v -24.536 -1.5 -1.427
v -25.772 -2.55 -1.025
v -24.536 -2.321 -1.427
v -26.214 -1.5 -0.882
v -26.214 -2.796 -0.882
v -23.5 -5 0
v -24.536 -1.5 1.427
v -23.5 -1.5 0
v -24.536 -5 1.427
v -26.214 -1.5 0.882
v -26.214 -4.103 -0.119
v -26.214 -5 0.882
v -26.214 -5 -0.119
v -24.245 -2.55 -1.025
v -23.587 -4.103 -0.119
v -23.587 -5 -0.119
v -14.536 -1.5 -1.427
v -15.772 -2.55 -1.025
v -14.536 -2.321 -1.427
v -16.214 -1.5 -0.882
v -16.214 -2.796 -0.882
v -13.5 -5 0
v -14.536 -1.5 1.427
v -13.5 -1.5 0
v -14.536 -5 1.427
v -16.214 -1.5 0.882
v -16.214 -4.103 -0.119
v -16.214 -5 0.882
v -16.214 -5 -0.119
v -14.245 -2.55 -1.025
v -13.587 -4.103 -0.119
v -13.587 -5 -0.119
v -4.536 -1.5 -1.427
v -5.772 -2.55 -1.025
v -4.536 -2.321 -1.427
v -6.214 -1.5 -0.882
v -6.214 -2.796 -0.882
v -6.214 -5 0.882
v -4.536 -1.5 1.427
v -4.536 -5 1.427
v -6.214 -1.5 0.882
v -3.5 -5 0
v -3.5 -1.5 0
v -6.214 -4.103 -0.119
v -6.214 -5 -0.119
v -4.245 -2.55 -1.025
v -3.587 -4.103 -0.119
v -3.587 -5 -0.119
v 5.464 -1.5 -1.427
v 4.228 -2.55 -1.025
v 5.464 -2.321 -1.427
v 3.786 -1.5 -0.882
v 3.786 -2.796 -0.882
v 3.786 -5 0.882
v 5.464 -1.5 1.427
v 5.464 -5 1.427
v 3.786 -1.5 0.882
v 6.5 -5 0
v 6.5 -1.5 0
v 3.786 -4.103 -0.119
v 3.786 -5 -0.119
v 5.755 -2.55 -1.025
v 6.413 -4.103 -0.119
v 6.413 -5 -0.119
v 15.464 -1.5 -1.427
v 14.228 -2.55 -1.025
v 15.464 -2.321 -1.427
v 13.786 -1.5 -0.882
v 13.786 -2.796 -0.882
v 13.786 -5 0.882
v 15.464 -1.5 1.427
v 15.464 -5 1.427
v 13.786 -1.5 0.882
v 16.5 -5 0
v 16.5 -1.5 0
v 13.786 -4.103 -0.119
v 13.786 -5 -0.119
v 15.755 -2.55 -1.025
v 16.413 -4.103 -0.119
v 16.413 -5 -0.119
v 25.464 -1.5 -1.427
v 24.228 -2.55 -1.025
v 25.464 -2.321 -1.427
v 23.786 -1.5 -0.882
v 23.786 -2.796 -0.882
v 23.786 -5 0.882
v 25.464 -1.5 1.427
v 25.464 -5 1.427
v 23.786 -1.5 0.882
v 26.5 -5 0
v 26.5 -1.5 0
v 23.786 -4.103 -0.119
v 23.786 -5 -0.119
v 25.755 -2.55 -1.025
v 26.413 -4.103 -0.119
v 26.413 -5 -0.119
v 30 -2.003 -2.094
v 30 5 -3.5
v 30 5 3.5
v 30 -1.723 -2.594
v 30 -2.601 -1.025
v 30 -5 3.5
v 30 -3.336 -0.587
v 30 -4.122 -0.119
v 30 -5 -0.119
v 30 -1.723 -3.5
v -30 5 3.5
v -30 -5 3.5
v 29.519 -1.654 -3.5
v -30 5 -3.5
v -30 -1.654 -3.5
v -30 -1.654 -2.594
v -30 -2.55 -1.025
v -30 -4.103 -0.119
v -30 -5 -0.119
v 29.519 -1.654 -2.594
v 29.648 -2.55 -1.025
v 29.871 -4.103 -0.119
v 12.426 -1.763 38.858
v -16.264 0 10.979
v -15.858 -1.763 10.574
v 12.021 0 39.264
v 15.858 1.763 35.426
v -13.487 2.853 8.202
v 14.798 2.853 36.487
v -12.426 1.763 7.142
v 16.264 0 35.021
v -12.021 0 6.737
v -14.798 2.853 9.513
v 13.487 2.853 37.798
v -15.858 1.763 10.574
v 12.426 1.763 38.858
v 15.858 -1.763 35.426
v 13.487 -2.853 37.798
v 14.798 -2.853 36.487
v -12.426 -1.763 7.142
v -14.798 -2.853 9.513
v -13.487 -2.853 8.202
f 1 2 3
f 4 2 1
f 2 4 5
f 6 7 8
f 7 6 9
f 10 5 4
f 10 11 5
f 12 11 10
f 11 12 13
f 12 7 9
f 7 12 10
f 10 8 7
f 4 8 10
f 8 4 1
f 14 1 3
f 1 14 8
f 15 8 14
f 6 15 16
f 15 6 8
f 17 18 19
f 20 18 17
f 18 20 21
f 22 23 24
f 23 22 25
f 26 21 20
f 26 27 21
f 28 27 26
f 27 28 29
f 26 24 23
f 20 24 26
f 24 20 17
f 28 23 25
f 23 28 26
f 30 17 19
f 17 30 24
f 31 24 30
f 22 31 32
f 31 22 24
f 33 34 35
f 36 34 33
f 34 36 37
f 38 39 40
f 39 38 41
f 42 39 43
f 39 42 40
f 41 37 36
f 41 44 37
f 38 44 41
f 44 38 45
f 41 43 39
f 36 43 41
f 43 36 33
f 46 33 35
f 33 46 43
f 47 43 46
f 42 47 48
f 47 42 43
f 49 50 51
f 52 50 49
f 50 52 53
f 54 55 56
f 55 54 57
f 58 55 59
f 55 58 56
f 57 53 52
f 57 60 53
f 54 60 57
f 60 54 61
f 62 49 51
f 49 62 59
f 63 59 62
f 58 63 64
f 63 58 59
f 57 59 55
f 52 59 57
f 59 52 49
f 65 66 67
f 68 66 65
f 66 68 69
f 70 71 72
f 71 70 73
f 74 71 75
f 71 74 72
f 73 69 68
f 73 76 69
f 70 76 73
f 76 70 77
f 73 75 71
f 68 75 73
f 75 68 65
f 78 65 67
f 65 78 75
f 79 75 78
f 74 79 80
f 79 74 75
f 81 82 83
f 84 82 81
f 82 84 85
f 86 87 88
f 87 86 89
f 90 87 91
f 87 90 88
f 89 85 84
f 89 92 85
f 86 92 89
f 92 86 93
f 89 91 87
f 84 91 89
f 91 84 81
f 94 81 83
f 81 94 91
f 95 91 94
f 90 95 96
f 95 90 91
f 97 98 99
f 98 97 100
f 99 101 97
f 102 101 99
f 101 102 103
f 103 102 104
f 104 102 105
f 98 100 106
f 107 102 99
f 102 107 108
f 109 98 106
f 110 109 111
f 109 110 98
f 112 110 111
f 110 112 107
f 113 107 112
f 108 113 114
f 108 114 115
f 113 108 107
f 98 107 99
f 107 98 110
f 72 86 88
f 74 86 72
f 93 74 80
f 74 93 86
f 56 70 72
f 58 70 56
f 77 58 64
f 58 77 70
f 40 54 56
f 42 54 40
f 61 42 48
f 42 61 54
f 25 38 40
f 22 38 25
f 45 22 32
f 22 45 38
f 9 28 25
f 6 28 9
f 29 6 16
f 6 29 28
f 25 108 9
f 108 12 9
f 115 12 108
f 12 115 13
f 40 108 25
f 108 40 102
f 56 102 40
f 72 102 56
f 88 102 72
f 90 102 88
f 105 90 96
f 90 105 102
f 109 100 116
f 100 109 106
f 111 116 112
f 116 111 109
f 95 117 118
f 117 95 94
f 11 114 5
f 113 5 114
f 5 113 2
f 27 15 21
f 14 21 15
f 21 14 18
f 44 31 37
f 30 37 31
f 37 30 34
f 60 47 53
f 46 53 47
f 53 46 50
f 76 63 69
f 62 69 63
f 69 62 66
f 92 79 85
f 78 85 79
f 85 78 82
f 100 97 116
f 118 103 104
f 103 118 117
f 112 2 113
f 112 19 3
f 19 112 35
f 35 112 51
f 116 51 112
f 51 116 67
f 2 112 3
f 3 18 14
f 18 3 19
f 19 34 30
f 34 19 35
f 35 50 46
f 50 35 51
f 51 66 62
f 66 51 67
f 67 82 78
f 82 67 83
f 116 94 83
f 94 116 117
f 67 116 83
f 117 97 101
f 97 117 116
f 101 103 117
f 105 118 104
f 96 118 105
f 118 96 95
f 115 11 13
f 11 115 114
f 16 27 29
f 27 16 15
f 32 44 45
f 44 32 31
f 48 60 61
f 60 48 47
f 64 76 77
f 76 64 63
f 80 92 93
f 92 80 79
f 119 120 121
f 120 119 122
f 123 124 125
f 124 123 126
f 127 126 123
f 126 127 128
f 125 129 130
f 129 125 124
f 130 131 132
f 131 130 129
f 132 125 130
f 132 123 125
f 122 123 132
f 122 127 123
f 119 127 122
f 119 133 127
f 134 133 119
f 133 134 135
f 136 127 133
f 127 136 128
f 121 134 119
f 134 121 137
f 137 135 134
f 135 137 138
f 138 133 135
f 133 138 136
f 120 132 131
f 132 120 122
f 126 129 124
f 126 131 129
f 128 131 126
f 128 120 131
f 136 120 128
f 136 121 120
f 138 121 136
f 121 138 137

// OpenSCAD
// Base Plate
module base_plate() {
    difference() {
        // Adjusted base plate dimensions: 60x10x7 for a thicker profile
        cube([60, 10, 7], center = true); 
        
        // Adding beveled edges
        hull() {
            translate([-30, -5, -3.5]) sphere(r = 3.5);
            translate([30, -5, -3.5]) sphere(r = 3.5);
        }
        
        // Holes evenly spaced along one edge
        for (x = [-25, -15, -5, 5, 15, 25]) { 
            translate([x, -5, 0]) 
                rotate([90, 0, 0]) 
                    cylinder(r = 1.5, h = 7, center = true); // Adjusted hole height to match new thickness
        }
    }
}

// Cylindrical Rod
module cylindrical_rod() {
    translate([0, 0, 23]) // Adjusted position to account for thicker base plate
        rotate([0, 45, 0]) // Angle the rod upward
            cylinder(r = 3, h = 40, center = true); // Rod dimensions: radius 3, height 40
}

// Triangular Support Brace
module triangular_support_brace() {
    polyhedron(
        points = [
            [0, 0, 0], // Bottom-left corner
            [10, 0, 0], // Bottom-right corner
            [0, 0, 20], // Top corner
            [10, 0, 20], // Top-right corner (for thickness)
            [0, -2, 0], // Bottom-left corner (offset for thickness)
            [10, -2, 0], // Bottom-right corner (offset for thickness)
            [0, -2, 20], // Top corner (offset for thickness)
            [10, -2, 20] // Top-right corner (offset for thickness)
        ],
        faces = [
            [0, 1, 2], // Front face
            [1, 3, 2], // Back face
            [4, 5, 6], // Front face (offset)
            [5, 7, 6], // Back face (offset)
            [0, 1, 5, 4], // Bottom face
            [2, 3, 7, 6], // Top face
            [0, 2, 6, 4], // Left face
            [1, 3, 7, 5] // Right face
        ]
    );
}

// Assembly
module assembly() {
    base_plate();
    
    // Position the first brace
    translate([-10, -5, 3.5]) // Adjusted position to align with base plate and rod
        rotate([0, 0, 45]) // Adjusted angle for proper support
        triangular_support_brace();
    
    // Position the second brace
    translate([10, -5, 3.5]) // Adjusted position to align with base plate and rod
        rotate([0, 0, -45]) // Adjusted angle for proper support
        triangular_support_brace();
    
    cylindrical_rod();
}

// Render the assembly
assembly();
